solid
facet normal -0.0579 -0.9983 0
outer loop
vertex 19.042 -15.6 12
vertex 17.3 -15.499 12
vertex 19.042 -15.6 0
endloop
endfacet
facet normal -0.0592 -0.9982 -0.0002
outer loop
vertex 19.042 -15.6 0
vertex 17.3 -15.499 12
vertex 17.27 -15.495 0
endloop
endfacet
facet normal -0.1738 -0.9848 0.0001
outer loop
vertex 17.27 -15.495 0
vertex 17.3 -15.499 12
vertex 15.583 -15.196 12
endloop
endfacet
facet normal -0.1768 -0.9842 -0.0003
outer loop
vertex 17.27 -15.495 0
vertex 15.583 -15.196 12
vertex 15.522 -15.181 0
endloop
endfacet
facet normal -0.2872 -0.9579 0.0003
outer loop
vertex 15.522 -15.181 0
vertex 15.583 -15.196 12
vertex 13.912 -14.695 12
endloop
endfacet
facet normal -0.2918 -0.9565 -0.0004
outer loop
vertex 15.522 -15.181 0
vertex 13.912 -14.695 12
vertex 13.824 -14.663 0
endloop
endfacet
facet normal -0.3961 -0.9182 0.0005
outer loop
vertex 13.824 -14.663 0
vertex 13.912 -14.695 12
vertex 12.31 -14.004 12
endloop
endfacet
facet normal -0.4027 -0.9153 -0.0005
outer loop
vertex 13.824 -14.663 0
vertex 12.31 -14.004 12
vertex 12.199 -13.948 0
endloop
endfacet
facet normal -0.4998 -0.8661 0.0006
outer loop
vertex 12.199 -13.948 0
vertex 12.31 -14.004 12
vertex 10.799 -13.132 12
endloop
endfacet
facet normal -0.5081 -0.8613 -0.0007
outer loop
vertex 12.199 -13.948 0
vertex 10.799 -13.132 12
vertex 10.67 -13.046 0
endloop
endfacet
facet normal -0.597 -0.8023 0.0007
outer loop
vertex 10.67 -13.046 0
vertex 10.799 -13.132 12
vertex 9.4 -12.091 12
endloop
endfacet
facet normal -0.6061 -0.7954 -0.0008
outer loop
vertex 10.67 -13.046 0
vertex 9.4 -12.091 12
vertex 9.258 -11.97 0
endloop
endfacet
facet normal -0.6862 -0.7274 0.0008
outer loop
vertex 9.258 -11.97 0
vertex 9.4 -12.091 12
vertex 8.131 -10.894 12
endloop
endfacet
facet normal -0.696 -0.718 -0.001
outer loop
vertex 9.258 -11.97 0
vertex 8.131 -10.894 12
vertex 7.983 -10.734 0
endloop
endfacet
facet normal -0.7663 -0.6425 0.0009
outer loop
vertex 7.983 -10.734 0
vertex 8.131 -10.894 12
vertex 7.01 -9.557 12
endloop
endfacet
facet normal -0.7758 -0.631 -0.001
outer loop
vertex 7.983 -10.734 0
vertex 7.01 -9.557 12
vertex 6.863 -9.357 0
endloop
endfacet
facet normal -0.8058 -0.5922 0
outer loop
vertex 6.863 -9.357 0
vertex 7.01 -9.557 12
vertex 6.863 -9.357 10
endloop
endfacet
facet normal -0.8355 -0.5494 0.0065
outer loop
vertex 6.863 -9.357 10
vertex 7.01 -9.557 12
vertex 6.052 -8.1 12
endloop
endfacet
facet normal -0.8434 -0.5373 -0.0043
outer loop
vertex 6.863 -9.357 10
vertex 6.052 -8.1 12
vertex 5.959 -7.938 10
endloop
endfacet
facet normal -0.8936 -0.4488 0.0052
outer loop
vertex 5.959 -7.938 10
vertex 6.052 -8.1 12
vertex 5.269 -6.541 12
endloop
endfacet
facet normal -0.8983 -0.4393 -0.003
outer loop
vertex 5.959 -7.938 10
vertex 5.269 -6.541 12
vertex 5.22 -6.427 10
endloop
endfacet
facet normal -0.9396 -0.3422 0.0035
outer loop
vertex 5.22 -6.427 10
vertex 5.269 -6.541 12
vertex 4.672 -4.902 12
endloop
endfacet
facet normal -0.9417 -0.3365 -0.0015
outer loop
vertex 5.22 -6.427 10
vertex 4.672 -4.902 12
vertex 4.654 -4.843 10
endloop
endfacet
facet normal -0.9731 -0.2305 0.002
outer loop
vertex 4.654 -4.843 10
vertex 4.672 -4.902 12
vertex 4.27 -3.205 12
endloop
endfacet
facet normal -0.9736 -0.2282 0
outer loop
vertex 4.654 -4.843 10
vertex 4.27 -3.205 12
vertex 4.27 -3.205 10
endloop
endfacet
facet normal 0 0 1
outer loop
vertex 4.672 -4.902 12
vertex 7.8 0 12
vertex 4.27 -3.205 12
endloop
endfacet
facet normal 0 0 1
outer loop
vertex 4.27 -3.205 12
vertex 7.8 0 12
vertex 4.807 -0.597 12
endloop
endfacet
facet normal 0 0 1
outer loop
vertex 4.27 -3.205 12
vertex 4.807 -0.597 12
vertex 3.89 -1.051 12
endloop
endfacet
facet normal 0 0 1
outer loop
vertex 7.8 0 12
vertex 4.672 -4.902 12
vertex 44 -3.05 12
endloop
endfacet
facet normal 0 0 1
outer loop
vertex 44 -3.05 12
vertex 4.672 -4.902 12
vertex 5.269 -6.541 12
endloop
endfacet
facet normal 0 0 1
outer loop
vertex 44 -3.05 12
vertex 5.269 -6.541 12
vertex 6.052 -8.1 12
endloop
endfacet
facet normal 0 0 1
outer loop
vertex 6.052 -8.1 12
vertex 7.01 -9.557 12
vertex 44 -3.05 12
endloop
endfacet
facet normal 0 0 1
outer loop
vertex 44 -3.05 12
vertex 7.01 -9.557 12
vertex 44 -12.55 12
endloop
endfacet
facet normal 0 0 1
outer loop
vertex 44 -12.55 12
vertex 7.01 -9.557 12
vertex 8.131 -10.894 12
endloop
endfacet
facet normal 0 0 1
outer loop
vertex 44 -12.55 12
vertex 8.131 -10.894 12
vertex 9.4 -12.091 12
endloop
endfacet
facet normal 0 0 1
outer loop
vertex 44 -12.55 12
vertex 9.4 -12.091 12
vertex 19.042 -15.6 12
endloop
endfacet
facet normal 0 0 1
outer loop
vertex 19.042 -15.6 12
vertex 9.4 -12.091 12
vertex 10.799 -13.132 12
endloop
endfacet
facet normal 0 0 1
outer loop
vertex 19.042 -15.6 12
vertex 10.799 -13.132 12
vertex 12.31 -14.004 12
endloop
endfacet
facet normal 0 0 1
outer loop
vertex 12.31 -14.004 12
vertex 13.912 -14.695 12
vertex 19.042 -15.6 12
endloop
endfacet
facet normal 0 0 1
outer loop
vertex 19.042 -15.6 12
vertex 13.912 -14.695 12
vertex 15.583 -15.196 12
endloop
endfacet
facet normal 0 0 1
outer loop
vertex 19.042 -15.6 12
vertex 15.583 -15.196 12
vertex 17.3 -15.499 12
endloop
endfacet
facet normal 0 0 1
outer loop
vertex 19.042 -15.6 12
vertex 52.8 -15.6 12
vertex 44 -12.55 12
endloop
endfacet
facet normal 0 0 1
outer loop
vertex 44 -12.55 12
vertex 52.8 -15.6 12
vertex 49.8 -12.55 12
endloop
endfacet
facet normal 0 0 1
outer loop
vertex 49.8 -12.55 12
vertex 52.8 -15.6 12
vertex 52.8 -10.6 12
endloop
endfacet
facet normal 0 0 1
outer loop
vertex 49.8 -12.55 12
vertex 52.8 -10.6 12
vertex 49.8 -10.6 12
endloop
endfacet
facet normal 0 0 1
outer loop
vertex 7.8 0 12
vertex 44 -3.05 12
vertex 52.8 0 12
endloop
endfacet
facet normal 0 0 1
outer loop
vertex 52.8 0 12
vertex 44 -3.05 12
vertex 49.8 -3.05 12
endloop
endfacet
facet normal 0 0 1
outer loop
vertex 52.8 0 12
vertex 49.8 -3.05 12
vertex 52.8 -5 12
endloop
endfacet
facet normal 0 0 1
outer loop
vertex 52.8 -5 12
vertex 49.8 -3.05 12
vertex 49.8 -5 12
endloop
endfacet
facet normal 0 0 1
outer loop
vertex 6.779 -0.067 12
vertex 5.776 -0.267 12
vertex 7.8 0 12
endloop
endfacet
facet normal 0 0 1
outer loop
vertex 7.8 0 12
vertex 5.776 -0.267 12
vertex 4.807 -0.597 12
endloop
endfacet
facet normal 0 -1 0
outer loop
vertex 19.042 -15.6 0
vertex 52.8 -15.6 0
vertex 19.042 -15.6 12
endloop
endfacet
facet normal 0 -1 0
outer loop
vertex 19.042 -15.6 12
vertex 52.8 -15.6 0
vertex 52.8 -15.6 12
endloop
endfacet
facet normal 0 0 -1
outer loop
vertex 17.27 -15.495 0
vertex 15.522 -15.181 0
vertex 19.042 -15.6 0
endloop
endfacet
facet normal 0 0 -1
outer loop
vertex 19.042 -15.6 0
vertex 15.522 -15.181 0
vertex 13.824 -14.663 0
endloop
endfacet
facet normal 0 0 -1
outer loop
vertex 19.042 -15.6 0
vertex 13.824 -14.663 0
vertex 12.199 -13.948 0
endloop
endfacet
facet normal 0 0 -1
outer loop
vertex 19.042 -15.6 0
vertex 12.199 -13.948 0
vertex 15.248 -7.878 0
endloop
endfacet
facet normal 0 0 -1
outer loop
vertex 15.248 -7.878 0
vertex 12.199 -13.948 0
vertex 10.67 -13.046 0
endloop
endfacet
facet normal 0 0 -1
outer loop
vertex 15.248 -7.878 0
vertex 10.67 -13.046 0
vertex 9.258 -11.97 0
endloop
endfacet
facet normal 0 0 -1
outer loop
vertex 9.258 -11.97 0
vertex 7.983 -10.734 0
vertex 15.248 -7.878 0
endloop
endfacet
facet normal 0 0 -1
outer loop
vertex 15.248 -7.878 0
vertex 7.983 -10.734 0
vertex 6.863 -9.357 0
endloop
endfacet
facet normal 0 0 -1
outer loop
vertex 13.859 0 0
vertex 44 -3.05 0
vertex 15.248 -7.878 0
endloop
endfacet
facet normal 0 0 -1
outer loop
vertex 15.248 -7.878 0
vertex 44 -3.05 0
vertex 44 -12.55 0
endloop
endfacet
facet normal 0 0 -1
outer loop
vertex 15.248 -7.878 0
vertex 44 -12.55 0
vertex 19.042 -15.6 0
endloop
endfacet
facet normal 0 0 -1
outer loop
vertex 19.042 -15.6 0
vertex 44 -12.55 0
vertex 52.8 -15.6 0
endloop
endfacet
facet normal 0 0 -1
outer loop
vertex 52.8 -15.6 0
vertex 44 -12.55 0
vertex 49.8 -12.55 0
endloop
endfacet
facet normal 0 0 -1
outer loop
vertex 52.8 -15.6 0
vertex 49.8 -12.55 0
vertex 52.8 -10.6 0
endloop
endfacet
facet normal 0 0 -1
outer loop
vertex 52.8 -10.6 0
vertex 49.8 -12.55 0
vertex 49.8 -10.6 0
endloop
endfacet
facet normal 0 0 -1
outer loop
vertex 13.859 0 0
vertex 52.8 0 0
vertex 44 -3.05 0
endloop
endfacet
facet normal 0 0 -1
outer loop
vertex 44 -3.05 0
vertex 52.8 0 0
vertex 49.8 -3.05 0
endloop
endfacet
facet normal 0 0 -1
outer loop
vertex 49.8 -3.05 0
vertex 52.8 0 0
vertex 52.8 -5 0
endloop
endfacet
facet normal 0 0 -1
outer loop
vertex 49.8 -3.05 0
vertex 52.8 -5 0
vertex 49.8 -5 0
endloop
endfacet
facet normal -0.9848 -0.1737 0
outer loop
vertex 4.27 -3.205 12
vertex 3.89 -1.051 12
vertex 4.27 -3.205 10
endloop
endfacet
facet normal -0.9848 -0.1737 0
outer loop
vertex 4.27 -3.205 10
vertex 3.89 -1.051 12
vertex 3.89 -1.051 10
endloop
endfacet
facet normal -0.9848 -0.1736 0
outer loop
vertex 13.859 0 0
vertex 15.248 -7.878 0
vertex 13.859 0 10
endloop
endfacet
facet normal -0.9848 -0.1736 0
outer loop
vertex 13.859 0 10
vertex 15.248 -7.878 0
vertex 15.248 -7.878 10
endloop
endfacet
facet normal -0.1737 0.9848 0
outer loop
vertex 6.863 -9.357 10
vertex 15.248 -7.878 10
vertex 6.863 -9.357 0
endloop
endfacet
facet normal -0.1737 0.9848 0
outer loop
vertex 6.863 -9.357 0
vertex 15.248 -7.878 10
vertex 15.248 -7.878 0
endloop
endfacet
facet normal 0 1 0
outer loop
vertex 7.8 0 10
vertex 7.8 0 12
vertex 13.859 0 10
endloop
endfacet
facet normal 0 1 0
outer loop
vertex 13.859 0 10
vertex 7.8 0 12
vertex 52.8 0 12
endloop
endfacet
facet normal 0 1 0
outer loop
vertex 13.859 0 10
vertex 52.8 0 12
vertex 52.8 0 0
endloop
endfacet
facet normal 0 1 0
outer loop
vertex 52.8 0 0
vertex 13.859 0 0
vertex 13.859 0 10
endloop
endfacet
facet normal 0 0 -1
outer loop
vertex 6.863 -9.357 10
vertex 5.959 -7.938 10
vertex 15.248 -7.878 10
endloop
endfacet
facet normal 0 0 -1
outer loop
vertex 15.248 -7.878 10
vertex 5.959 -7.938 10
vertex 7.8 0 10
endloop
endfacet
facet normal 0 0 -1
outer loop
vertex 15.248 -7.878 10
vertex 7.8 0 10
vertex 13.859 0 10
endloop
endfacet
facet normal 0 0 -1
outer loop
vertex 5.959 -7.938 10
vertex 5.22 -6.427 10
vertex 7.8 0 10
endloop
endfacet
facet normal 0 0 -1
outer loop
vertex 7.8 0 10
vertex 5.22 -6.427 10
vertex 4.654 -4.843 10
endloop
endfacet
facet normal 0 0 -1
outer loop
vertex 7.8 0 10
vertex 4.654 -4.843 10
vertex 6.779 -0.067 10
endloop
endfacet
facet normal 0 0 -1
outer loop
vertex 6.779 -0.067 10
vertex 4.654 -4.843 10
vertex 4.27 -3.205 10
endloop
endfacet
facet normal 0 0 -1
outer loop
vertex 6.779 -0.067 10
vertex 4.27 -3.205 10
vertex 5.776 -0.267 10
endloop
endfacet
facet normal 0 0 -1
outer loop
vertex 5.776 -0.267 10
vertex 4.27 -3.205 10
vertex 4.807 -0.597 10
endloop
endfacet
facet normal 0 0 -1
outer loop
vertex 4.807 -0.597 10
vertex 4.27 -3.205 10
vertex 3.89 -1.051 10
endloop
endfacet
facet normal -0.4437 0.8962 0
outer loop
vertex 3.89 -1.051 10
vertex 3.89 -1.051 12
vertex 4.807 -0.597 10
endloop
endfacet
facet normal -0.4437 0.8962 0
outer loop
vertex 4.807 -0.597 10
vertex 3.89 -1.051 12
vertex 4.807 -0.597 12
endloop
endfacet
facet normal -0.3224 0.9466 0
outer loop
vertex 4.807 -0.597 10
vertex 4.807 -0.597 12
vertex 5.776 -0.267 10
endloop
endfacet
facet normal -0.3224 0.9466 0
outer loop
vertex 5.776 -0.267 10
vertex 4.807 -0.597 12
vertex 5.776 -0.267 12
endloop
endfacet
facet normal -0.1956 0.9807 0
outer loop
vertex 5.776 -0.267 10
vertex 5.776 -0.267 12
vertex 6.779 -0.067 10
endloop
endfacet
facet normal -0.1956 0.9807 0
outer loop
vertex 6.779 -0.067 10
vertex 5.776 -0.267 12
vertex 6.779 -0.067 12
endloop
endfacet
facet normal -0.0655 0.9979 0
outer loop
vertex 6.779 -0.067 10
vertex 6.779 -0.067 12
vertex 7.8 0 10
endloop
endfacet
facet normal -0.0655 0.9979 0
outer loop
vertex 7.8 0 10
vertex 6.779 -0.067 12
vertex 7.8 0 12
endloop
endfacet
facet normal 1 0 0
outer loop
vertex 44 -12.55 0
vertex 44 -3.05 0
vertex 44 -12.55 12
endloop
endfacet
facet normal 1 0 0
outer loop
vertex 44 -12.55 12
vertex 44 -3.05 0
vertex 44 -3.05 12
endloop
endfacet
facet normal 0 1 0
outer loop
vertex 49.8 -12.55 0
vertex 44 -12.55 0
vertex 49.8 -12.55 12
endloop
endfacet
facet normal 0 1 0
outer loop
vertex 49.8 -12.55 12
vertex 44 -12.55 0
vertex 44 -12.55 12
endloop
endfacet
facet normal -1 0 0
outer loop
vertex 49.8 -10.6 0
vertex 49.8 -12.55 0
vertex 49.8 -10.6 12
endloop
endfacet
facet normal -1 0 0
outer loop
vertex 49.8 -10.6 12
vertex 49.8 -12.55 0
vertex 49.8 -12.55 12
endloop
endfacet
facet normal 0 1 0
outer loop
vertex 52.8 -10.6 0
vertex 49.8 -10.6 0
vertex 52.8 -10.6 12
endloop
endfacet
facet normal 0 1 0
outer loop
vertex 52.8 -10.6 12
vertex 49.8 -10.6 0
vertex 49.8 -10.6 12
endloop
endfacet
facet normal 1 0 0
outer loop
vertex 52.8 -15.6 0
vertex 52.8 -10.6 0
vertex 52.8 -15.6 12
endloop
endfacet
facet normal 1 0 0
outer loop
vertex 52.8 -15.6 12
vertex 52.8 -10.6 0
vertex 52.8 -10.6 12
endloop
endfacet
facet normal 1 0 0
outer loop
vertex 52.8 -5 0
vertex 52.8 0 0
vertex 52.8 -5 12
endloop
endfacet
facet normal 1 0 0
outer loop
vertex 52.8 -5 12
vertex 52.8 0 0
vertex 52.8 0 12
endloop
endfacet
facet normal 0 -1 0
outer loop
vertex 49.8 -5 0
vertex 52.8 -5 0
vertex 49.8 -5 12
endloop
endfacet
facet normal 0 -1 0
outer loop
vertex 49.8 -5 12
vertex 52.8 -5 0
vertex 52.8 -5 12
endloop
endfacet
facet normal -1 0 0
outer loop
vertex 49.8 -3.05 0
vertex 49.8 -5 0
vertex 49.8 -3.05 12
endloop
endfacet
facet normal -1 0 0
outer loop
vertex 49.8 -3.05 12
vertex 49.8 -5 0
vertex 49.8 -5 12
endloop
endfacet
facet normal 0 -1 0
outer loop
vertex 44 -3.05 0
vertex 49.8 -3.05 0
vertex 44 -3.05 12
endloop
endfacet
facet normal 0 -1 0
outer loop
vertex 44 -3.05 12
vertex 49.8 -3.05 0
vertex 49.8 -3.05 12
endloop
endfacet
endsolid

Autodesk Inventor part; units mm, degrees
ref_plane "YZ Plane" through (0, 0, 0) normal (1, 0, 0) x (0, 1, 0)
ref_plane "XZ Plane" through (0, 0, 0) normal (0, 1, 0) x (-1, 0, 0)
ref_plane "XY Plane" through (0, 0, 0) normal (0, 0, 1) x (1, 0, 0)
sketch "Sketch5" plane through (0, 0, 0) normal (0, 0, 1) x (1, 0, 0)
  line L0 (52.8, -15.6) -> (52.8, -10.6)
  line L1 (52.8, -10.6) -> (49.8, -10.6)
  line L2 (49.8, -10.6) -> (49.8, -12.55)
  line L3 (44, -12.55) -> (44, -3.05)
  line L4 (49.8, -3.05) -> (49.8, -5)
  line L5 (49.8, -5) -> (52.8, -5)
  line L6 (52.8, -5) -> (52.8, 0)
  line L7 (52.8, 0) -> (7.8, 0)
  line L8 (44, -3.05) -> (49.8, -3.05)
  line L9 (44, -12.55) -> (49.8, -12.55)
  line L10 (52.8, -15.6) -> (7.8, -15.6)
  arc A0 (7.8, 0) -> (7.8, -15.6) centre (7.8, -7.8) ccw
  point P0 (0, 0)
  dimension "d41" = 5.8
  dimension "d48" = 44
  dimension "d50" = 3
  dimension "d63" = 45
  dimension "d67" = 15.6
  dimension "d71" = 0
  dimension "d72" = 36.2
  dimension "d87" = 5.6
  dimension "d88" = 9.5
extrude "Extrusion2" add sketch "Sketch5" along normal blind 12
sketch "Sketch11" plane through (0, 0, 12) normal (0, 0, 1) x (1, 0, 0)
  line L0 (52.8, 0) -> (7.8, 0) projected
  line L1 (13.859, 0) -> (15.2481, -7.8785)
  line L2 (15.2481, -7.8785) -> (0.476, -10.4832)
  arc A0 (7.8, 0) -> (7.8, -15.6) centre (7.8, -7.8) ccw projected
  point P0 (0, 0)
  dimension "d95" = 100
  dimension "d96" = 8
  dimension "d97" = 15
extrude "Extrusion7" cut sketch "Sketch11" along normal blind 10 from surface at -12
sketch "Sketch14" plane through (0, 0, 12) normal (0, 0, 1) x (1, 0, 0)
  line L0 (2.8531, 4.8295) -> (7.1439, -19.5045)
  line L1 (7.1439, -19.5045) -> (-13.8708, -23.21)
  line L2 (-13.8708, -23.21) -> (-18.1616, 1.124)
  line L3 (-18.1616, 1.124) -> (2.8531, 4.8295)
  line L4 (13.859, 0) -> (15.2481, -7.8785) projected
  point P0 (0, 0)
  dimension "d111" = 10
extrude "Extrusion10" cut sketch "Sketch14" against normal through all
fillet "Fillet2" radius 15 1 edges at (6.4341, -15.4795, 6)
equation "\"l1\" = 8"
properties part number "Finray_test_8_Kerbe_10deg_V4"
